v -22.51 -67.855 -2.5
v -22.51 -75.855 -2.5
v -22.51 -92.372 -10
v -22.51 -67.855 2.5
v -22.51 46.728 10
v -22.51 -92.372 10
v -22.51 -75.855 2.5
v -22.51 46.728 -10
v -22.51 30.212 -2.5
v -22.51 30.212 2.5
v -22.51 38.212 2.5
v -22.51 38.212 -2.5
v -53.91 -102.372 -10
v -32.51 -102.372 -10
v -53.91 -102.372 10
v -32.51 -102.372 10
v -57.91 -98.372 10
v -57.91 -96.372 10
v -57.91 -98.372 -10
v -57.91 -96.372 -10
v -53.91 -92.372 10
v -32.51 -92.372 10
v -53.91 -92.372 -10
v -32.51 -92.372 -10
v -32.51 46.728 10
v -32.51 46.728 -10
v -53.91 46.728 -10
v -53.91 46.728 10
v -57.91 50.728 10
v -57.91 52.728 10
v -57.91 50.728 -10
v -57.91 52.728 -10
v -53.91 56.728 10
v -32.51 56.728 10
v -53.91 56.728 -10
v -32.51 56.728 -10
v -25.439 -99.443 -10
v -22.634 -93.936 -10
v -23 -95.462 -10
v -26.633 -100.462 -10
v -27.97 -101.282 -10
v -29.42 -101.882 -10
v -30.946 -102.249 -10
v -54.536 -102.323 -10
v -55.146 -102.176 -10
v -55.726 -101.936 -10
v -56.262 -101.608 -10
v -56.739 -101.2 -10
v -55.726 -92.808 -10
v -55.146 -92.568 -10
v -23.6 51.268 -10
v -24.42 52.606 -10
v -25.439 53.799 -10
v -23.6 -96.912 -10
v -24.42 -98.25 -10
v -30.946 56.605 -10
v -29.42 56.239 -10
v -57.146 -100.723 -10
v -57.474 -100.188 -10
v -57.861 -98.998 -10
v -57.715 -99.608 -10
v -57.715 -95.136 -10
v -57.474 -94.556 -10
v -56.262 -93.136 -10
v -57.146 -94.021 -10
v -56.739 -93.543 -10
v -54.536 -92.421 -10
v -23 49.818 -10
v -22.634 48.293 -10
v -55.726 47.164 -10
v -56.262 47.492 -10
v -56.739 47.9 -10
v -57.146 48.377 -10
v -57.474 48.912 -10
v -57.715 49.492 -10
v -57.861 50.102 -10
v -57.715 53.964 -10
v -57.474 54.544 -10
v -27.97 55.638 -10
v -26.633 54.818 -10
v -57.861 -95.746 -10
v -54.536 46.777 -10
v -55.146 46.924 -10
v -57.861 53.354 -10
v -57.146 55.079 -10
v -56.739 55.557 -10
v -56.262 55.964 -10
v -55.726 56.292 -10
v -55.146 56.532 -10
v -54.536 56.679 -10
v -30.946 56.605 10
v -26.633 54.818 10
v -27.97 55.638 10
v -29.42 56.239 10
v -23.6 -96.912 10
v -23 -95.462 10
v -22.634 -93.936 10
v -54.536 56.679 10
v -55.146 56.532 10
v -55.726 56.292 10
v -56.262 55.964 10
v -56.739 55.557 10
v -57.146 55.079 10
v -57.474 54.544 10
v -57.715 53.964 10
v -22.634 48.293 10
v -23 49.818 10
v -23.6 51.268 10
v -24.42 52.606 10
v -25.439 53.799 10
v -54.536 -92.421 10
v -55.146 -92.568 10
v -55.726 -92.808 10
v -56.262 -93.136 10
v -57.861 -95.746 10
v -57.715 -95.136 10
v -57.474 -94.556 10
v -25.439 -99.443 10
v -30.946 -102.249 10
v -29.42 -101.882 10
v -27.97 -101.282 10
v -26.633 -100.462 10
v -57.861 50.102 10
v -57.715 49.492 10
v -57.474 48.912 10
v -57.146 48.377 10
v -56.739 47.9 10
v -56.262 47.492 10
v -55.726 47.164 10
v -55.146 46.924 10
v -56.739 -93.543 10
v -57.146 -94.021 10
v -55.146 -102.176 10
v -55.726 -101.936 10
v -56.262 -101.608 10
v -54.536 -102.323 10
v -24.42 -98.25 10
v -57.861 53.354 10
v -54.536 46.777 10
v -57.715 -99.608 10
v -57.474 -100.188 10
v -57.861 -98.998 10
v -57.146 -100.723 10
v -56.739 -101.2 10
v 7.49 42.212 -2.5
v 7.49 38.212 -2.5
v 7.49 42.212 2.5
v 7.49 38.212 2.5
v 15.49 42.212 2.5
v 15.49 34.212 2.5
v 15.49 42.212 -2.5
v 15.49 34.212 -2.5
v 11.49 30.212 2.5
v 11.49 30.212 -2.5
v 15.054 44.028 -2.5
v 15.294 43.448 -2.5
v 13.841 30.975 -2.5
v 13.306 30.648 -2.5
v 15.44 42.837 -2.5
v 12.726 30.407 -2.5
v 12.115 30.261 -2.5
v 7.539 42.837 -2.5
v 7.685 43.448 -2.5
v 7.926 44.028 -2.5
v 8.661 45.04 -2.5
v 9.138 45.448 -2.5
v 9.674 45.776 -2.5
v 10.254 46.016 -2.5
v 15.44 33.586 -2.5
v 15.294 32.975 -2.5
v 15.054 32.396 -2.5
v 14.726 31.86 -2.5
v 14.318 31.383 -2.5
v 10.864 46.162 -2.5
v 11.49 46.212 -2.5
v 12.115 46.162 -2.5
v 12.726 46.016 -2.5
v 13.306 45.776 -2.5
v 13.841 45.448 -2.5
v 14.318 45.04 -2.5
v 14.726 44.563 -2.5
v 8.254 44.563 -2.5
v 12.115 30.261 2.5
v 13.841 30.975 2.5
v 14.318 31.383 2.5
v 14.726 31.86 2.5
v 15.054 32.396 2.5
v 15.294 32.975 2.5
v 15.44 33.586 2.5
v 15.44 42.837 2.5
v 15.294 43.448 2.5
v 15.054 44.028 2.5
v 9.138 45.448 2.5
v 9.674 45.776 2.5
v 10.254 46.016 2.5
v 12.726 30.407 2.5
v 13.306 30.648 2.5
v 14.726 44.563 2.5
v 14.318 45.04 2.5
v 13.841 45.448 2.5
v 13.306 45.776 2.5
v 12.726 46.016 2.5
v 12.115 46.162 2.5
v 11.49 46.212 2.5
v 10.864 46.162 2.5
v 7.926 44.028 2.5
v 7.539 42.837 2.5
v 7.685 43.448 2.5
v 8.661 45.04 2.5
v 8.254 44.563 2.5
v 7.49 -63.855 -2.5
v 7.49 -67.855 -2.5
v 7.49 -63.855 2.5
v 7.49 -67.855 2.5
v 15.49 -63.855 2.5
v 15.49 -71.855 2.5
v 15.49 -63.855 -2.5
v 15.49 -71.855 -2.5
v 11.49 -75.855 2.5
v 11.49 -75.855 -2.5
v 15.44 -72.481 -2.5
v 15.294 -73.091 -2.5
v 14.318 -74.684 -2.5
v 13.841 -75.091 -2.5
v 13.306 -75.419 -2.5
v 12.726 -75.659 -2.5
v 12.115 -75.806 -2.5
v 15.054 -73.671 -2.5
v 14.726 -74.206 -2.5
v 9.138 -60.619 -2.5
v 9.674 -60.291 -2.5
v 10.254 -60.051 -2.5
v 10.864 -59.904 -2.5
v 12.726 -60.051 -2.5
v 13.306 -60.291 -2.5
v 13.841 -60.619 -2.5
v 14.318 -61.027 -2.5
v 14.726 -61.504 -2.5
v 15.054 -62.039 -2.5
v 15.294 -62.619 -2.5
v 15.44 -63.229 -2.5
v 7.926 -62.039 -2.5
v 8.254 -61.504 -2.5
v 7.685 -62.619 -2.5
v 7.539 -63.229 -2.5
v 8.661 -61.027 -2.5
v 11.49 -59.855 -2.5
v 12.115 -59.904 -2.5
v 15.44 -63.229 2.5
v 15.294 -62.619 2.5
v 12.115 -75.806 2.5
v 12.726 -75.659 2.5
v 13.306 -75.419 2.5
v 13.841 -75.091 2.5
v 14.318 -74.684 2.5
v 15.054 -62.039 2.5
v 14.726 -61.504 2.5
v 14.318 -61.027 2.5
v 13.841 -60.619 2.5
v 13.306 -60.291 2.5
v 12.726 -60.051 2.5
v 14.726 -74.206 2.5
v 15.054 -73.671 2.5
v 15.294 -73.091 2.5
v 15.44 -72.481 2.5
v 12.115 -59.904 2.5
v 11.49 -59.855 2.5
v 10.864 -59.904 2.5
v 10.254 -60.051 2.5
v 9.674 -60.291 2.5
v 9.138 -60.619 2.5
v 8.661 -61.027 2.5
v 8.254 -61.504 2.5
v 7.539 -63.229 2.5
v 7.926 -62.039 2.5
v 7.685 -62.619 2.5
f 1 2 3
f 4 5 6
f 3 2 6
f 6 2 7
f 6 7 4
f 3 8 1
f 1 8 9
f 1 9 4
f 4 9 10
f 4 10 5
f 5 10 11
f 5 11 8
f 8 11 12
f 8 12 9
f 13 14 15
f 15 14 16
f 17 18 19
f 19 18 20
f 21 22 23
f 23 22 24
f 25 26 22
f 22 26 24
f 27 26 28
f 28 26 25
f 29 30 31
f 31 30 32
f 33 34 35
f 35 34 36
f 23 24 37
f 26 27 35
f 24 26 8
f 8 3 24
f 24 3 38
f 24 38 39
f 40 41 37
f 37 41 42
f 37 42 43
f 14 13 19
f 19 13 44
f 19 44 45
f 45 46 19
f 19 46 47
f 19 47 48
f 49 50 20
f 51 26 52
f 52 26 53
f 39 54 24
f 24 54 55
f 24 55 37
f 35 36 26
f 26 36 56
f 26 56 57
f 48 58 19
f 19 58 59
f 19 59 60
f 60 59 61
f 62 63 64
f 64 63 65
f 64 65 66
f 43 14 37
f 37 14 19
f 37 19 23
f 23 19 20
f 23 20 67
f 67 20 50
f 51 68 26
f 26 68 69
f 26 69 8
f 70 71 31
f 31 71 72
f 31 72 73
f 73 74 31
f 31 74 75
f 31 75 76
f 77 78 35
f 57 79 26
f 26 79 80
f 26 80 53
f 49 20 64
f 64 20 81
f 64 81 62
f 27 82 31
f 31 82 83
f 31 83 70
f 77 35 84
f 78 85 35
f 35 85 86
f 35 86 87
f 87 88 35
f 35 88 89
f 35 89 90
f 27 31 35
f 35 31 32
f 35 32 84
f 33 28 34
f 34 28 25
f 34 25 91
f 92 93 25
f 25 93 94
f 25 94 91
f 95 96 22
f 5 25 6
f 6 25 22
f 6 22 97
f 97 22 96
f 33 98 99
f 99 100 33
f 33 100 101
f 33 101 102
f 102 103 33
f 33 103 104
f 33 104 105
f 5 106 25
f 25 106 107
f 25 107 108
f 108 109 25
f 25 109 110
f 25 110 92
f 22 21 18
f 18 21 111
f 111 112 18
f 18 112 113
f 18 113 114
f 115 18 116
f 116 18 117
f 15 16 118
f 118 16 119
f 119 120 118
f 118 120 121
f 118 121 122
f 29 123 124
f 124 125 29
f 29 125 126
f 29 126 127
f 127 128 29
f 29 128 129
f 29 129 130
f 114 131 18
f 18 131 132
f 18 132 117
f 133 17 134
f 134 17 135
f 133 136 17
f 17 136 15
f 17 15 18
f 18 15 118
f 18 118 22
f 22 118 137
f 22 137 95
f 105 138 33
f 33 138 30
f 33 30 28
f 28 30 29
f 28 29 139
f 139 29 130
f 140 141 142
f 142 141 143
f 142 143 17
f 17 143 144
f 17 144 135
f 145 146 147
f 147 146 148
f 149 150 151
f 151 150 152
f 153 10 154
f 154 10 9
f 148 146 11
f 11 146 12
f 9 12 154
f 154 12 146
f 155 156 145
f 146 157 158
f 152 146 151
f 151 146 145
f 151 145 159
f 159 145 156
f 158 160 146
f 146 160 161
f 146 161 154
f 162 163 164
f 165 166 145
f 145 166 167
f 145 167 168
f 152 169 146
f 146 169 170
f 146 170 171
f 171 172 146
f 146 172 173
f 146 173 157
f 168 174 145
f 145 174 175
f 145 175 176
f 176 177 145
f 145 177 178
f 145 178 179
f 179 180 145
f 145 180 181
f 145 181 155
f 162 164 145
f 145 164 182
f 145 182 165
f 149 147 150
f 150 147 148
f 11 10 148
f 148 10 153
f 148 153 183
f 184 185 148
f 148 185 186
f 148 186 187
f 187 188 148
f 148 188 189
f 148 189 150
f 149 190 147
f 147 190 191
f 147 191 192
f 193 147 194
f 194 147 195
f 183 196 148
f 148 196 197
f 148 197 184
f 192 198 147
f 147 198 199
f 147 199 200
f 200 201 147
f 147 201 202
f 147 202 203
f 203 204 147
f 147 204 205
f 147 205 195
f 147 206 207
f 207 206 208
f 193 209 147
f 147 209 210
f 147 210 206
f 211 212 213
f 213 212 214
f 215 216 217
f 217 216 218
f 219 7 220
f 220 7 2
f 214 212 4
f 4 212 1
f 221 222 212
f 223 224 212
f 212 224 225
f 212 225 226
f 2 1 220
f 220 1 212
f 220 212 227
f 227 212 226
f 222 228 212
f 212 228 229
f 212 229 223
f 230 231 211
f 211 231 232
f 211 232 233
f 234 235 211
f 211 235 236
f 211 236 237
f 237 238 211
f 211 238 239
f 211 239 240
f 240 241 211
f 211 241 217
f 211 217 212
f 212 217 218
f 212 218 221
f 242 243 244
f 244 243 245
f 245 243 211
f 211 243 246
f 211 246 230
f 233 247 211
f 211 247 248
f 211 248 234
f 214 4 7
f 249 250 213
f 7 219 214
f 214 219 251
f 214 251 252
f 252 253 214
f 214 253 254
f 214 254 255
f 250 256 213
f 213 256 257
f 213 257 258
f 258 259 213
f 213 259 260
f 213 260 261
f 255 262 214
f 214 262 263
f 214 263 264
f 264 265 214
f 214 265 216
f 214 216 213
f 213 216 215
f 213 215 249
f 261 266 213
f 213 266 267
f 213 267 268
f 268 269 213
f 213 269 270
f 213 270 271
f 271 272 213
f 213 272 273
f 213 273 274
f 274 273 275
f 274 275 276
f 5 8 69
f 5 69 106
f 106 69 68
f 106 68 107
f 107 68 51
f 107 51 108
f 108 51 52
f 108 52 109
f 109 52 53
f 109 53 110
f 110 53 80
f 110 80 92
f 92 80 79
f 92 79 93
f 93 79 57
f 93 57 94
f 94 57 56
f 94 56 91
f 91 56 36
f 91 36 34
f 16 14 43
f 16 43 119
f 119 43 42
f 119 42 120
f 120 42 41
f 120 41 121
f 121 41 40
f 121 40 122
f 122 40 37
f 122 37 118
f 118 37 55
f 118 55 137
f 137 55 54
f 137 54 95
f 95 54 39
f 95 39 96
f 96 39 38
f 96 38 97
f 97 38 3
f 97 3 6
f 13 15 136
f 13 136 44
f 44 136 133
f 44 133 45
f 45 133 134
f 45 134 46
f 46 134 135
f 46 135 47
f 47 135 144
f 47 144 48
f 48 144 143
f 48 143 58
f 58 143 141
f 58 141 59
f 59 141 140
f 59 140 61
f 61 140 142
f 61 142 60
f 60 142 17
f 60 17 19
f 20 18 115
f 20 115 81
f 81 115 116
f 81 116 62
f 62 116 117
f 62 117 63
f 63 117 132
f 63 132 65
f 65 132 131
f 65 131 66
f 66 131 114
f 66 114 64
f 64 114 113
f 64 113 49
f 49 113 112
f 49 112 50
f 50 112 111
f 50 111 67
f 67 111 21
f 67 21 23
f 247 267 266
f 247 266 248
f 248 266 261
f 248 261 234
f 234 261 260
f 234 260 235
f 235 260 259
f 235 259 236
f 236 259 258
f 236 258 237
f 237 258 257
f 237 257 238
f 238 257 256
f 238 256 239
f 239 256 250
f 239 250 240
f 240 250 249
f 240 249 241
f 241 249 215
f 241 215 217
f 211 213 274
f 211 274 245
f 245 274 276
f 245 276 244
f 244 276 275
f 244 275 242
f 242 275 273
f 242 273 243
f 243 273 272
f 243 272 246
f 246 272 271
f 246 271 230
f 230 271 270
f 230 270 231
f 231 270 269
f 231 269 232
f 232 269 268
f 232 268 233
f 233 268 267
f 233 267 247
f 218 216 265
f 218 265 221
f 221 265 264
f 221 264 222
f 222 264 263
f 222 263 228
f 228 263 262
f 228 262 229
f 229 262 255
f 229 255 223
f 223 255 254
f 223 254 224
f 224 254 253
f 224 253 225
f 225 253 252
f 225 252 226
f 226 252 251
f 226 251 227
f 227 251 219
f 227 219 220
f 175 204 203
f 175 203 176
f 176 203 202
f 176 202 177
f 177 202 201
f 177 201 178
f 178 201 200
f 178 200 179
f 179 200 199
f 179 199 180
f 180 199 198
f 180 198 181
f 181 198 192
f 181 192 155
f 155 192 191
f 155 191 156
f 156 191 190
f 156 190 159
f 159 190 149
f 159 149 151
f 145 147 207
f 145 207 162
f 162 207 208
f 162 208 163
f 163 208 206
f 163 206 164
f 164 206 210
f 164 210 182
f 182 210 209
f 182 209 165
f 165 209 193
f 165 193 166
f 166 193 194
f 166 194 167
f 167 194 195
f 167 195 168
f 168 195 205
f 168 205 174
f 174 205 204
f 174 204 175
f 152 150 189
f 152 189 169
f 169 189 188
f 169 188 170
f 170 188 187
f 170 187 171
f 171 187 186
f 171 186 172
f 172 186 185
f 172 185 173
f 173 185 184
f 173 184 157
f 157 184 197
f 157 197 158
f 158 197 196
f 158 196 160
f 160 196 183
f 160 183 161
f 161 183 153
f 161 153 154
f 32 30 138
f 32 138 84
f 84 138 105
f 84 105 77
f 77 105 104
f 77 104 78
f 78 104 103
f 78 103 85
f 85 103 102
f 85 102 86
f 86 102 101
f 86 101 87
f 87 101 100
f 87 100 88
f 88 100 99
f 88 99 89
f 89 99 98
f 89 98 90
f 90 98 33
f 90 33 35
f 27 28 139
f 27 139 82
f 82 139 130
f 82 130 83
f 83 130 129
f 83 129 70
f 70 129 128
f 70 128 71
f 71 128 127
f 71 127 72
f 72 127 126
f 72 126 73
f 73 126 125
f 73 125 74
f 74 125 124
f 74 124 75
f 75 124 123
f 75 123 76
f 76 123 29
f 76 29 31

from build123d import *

# Parameters (mm, degrees)
BOSS_EXTRUDE1_DEPTH      = 10
BOSS_EXTRUDE1_DEPTH_BACK = 10
BOSS_EXTRUDE2_DEPTH      = 2.5
BOSS_EXTRUDE2_DEPTH_BACK = 2.5
FILLET1_R                = 10
FILLET2_R                = 4
FILLET3_R                = 4


with BuildPart() as part:
    # Sketch1 → Boss-Extrude1 (new, two sides: drawn at the far end of the back side and taken through both)
    with BuildSketch(Plane.XY.offset(-BOSS_EXTRUDE1_DEPTH_BACK)):
        Polygon((-22.510382525, 3.694889185), (-22.510382525, 30.211555852), (-22.510382525, 56.728222519), (-57.910382525, 56.728222519), (-57.910382525, 46.728222519), (-32.510382525, 46.728222519), (-32.510382525, -92.371777481), (-57.910382525, -92.371777481), (-57.910382525, -102.371777481), (-22.510382525, -102.371777481), (-22.510382525, -75.855110815), (-22.510382525, -49.338444148), (-22.510382525, -22.821777481), align=None)
    extrude(amount=BOSS_EXTRUDE1_DEPTH + BOSS_EXTRUDE1_DEPTH_BACK)

    # Sketch1<3> → Boss-Extrude2 (add, two sides: drawn at the far end of the back side and taken through both)
    with BuildSketch(Plane.XY.offset(-BOSS_EXTRUDE2_DEPTH_BACK)):
        Polygon((7.489617475, 38.211555852), (-22.510382525, 38.211555852), (-22.510382525, 30.211555852), (15.489617475, 30.211555852), (15.489617475, 46.211555852), (7.489617475, 46.211555852), align=None)
        Polygon((7.489617475, -67.855110815), (-22.510382525, -67.855110815), (-22.510382525, -75.855110815), (15.489617475, -75.855110815), (15.489617475, -59.855110815), (7.489617475, -59.855110815), align=None)
    extrude(amount=BOSS_EXTRUDE2_DEPTH + BOSS_EXTRUDE2_DEPTH_BACK)

    # Fillet1
    fillet1_edges = [part.edges().sort_by_distance(p)[0] for p in [
        (-22.510382525, -102.371777481, 0),
        (-22.510382525, 56.728222519, 0),
    ]]
    fillet(fillet1_edges, radius=FILLET1_R)

    # Fillet2
    fillet2_edges = [part.edges().sort_by_distance(p)[0] for p in [
        (-57.910382525, -102.371777481, 0),
        (-57.910382525, -92.371777481, 0),
        (7.489617475, -59.855110815, 0),
        (15.489617475, -59.855110815, 0),
        (15.489617475, -75.855110815, 0),
        (7.489617475, 46.211555852, 0),
        (15.489617475, 46.211555852, 0),
        (15.489617475, 30.211555852, 0),
        (-57.910382525, 56.728222519, 0),
    ]]
    fillet(fillet2_edges, radius=FILLET2_R - 0.0001)  # a hair under: the kernel refuses the full size

    # Fillet3
    fillet3_edges = [part.edges().sort_by_distance(p)[0] for p in [
        (-57.910382525, 46.728222519, 0),
    ]]
    fillet(fillet3_edges, radius=FILLET3_R)


solid = part.part
